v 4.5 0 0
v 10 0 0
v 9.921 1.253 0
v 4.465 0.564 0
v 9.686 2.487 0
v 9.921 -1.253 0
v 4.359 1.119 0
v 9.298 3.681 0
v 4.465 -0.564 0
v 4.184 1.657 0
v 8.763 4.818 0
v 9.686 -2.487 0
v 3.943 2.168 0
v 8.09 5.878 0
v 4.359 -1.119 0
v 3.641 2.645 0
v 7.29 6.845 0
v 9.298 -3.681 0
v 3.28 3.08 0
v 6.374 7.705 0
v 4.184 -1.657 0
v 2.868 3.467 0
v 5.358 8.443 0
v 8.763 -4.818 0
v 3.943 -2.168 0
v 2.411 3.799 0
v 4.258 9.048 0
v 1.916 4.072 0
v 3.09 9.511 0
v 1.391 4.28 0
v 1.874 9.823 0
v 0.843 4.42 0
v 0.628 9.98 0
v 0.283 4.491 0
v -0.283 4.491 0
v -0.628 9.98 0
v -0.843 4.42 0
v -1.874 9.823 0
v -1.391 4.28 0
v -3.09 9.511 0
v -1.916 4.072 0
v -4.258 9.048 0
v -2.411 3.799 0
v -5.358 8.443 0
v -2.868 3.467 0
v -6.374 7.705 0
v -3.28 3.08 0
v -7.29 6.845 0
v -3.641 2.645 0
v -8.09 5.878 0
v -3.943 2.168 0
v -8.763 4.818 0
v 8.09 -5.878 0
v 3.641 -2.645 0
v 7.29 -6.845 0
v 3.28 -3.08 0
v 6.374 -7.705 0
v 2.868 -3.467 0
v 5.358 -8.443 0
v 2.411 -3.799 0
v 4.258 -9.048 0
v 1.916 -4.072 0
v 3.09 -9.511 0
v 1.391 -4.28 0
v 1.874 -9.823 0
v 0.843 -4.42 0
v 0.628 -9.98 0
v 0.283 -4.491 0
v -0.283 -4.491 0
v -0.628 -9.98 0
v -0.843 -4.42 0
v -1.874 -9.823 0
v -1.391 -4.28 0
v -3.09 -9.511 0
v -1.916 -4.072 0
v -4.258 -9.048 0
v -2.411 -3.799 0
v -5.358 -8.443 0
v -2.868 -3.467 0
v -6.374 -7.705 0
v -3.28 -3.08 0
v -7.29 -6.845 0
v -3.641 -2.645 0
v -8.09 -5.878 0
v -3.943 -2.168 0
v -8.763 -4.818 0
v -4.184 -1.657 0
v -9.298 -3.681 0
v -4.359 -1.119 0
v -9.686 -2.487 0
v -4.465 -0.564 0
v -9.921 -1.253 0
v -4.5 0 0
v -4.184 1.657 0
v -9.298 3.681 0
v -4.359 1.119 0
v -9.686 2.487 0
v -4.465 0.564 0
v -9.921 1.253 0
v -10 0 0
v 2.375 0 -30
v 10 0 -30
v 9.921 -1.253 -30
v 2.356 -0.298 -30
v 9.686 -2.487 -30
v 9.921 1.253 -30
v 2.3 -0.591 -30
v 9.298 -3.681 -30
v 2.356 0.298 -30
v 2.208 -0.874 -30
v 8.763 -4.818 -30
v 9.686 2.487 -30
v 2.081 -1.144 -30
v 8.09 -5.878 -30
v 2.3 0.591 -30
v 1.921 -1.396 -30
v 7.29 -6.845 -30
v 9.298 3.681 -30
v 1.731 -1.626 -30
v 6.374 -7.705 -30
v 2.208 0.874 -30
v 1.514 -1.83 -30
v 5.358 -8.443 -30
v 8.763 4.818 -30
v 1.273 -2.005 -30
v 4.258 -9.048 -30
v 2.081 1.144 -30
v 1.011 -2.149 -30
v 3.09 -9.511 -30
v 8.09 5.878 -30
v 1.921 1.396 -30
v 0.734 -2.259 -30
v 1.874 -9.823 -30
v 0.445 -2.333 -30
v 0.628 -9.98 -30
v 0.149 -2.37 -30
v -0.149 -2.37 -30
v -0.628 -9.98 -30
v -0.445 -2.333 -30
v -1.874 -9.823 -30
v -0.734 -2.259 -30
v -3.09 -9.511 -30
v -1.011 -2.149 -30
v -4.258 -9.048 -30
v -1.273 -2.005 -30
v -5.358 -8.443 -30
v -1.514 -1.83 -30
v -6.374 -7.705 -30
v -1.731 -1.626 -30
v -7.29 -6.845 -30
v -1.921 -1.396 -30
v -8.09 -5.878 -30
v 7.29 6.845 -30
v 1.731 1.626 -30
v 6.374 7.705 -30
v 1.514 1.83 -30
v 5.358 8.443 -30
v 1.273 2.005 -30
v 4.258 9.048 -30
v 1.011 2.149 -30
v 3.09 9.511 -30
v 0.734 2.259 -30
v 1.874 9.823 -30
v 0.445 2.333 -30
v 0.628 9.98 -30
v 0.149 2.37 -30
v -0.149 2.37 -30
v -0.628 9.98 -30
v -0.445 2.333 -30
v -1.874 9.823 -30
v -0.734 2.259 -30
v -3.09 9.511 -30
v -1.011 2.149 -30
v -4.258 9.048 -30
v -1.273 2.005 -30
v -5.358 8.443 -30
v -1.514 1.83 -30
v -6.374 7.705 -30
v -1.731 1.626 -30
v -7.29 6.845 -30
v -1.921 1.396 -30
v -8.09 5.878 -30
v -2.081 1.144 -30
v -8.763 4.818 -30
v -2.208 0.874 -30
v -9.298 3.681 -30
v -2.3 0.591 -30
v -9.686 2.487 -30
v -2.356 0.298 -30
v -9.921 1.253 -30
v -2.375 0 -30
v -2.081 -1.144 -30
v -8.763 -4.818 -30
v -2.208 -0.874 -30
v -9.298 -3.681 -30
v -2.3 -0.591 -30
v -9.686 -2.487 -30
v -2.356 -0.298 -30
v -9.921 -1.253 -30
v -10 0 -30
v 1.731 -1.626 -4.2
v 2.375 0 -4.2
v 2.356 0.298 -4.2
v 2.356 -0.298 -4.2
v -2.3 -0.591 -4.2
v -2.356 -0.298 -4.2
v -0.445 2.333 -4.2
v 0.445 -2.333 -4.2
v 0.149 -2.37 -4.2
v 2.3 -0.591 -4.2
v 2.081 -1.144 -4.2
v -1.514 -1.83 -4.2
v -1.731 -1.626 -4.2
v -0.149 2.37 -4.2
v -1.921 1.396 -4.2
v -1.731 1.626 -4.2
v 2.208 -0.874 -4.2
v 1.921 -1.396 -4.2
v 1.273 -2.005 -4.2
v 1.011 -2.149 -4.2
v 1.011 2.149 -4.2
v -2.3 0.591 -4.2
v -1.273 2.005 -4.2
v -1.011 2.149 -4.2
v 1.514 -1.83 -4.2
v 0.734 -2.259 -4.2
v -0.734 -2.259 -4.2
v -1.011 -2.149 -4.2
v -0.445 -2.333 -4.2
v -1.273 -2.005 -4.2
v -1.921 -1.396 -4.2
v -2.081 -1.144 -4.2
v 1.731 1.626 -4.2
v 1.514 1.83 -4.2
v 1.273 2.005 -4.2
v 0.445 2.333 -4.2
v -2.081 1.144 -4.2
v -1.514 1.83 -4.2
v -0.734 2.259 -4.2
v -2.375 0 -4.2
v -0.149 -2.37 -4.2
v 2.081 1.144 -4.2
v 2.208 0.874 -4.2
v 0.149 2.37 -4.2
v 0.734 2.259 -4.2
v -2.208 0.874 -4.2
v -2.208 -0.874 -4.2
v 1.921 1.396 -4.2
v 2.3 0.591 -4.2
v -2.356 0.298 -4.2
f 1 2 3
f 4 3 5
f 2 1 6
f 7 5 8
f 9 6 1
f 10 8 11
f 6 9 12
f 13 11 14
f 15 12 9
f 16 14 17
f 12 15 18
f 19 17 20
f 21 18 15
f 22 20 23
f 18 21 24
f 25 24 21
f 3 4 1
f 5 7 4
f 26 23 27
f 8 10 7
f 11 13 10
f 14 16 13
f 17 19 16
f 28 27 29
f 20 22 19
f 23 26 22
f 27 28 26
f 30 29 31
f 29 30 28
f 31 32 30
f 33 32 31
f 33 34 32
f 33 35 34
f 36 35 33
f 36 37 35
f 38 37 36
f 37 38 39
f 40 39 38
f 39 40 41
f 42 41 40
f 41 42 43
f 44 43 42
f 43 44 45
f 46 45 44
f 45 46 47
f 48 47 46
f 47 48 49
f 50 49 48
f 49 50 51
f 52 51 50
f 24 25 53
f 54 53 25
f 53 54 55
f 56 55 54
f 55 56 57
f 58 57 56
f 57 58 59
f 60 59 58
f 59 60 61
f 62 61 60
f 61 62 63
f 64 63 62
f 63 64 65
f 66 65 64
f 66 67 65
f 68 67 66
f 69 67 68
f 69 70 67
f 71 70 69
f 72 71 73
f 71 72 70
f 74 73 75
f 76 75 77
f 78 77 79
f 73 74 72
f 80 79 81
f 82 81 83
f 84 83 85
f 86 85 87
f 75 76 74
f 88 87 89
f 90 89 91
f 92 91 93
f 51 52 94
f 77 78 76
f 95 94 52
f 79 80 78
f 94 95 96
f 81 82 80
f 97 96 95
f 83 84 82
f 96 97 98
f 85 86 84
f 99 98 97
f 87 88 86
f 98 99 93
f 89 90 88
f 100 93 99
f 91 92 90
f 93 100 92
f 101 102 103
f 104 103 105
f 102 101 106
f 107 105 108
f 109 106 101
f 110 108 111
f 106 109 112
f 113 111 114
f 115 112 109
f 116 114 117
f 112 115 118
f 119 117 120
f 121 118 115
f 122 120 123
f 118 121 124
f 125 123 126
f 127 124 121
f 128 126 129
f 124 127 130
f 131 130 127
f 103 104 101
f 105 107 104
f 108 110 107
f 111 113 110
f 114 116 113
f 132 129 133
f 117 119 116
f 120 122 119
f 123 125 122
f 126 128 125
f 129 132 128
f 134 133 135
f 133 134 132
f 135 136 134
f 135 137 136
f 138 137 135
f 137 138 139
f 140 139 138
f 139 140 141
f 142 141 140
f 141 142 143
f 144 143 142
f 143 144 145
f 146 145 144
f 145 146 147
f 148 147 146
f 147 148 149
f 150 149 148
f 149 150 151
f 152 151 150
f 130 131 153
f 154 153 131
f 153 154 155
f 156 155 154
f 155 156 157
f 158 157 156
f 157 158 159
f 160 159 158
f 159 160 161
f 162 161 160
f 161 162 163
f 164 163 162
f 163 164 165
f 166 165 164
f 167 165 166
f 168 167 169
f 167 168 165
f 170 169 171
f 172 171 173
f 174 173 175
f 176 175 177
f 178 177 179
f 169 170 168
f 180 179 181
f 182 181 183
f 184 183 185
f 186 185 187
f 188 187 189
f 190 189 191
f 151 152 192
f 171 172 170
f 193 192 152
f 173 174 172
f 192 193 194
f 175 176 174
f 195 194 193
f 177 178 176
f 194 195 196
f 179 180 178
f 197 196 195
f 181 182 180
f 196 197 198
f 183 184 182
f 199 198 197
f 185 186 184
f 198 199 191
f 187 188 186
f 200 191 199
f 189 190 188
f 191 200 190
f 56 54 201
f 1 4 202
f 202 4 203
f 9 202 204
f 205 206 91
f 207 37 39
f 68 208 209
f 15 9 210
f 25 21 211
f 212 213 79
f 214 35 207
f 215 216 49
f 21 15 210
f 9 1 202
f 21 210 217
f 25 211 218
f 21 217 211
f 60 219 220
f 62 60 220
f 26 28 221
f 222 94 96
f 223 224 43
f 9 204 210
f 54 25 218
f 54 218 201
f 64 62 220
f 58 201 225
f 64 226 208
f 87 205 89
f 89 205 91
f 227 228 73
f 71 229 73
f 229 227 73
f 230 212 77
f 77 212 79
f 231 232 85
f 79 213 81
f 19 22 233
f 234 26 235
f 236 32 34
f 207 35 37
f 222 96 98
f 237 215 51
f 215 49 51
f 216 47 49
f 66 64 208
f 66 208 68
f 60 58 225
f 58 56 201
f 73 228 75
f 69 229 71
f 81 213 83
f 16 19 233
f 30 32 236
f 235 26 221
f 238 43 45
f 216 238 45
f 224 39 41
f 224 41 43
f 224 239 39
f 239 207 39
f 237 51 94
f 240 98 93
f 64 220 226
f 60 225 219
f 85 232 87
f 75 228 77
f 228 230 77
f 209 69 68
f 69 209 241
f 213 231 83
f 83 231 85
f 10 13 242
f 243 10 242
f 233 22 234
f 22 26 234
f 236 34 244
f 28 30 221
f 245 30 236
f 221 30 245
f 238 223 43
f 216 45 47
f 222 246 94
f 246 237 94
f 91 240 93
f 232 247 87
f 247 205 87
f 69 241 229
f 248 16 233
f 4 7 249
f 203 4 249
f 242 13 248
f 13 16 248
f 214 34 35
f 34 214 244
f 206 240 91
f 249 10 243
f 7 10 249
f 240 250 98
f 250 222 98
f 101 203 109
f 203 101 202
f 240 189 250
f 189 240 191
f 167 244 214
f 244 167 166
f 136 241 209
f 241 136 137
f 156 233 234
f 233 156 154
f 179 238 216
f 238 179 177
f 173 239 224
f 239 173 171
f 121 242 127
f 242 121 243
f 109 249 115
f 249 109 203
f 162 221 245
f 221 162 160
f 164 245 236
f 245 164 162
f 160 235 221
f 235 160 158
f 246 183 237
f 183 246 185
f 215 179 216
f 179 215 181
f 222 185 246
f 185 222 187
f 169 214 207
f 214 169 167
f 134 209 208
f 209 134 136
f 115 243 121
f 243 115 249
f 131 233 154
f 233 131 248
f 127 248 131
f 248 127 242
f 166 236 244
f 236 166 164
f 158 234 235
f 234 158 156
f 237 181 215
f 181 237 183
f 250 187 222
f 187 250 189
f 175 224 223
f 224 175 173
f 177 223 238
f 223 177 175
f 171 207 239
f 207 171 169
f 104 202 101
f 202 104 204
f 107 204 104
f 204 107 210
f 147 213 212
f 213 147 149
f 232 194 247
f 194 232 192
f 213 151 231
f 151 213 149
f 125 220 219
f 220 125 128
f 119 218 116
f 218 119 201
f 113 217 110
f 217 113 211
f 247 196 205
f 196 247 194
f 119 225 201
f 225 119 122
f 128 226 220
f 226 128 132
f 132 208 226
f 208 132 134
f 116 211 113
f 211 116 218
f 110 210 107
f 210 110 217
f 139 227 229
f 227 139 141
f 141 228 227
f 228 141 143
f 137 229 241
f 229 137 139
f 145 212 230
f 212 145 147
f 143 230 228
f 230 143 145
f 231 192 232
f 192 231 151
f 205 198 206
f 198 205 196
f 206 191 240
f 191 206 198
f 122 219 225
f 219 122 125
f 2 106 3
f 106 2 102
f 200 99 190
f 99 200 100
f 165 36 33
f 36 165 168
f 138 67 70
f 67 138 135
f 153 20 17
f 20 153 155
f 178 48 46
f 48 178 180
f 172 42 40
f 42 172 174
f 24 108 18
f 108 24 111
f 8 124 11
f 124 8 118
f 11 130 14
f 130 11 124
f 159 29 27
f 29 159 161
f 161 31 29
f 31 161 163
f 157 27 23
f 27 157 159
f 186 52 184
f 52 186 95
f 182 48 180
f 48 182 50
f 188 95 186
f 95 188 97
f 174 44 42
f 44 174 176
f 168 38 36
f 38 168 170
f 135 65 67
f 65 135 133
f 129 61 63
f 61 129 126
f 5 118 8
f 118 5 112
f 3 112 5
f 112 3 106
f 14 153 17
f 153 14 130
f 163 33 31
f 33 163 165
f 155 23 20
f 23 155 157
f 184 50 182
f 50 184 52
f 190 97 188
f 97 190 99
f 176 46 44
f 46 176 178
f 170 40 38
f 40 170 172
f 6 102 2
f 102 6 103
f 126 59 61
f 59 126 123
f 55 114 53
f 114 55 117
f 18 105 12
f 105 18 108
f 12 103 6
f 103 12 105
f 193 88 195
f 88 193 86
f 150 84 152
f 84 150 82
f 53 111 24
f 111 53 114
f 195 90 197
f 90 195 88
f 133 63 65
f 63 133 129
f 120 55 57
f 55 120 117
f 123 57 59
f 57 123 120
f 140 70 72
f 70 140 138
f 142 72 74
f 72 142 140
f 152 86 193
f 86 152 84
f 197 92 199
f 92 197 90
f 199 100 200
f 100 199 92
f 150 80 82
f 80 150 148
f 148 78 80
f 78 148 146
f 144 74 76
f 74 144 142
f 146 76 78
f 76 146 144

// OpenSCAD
$fn = 50;


difference() {
	union() {
		translate(v = [0, 0, -30.0000000000]) {
			cylinder(h = 30, r = 10.0000000000);
		}
		cylinder(h = 0, r = 20.0000000000);
	}
	union() {
		translate(v = [0, 0, 0]) {
			rotate(a = [0, 0, 0]) {
				difference() {
					union() {
						#translate(v = [0, 0, -30.0000000000]) {
							cylinder(h = 30, r = 2.2500000000);
						}
						#translate(v = [0, 0, -4.2000000000]) {
							cylinder(h = 4.2000000000, r = 10.0000000000, r1 = 2.3750000000, r2 = 4.5000000000);
						}
						#translate(v = [0, 0, -30.0000000000]) {
							cylinder(h = 30, r = 2.3750000000);
						}
						#translate(v = [0, 0, -30.0000000000]) {
							cylinder(h = 30, r = 2.2500000000);
						}
					}
					union();
				}
			}
		}
	}
}
